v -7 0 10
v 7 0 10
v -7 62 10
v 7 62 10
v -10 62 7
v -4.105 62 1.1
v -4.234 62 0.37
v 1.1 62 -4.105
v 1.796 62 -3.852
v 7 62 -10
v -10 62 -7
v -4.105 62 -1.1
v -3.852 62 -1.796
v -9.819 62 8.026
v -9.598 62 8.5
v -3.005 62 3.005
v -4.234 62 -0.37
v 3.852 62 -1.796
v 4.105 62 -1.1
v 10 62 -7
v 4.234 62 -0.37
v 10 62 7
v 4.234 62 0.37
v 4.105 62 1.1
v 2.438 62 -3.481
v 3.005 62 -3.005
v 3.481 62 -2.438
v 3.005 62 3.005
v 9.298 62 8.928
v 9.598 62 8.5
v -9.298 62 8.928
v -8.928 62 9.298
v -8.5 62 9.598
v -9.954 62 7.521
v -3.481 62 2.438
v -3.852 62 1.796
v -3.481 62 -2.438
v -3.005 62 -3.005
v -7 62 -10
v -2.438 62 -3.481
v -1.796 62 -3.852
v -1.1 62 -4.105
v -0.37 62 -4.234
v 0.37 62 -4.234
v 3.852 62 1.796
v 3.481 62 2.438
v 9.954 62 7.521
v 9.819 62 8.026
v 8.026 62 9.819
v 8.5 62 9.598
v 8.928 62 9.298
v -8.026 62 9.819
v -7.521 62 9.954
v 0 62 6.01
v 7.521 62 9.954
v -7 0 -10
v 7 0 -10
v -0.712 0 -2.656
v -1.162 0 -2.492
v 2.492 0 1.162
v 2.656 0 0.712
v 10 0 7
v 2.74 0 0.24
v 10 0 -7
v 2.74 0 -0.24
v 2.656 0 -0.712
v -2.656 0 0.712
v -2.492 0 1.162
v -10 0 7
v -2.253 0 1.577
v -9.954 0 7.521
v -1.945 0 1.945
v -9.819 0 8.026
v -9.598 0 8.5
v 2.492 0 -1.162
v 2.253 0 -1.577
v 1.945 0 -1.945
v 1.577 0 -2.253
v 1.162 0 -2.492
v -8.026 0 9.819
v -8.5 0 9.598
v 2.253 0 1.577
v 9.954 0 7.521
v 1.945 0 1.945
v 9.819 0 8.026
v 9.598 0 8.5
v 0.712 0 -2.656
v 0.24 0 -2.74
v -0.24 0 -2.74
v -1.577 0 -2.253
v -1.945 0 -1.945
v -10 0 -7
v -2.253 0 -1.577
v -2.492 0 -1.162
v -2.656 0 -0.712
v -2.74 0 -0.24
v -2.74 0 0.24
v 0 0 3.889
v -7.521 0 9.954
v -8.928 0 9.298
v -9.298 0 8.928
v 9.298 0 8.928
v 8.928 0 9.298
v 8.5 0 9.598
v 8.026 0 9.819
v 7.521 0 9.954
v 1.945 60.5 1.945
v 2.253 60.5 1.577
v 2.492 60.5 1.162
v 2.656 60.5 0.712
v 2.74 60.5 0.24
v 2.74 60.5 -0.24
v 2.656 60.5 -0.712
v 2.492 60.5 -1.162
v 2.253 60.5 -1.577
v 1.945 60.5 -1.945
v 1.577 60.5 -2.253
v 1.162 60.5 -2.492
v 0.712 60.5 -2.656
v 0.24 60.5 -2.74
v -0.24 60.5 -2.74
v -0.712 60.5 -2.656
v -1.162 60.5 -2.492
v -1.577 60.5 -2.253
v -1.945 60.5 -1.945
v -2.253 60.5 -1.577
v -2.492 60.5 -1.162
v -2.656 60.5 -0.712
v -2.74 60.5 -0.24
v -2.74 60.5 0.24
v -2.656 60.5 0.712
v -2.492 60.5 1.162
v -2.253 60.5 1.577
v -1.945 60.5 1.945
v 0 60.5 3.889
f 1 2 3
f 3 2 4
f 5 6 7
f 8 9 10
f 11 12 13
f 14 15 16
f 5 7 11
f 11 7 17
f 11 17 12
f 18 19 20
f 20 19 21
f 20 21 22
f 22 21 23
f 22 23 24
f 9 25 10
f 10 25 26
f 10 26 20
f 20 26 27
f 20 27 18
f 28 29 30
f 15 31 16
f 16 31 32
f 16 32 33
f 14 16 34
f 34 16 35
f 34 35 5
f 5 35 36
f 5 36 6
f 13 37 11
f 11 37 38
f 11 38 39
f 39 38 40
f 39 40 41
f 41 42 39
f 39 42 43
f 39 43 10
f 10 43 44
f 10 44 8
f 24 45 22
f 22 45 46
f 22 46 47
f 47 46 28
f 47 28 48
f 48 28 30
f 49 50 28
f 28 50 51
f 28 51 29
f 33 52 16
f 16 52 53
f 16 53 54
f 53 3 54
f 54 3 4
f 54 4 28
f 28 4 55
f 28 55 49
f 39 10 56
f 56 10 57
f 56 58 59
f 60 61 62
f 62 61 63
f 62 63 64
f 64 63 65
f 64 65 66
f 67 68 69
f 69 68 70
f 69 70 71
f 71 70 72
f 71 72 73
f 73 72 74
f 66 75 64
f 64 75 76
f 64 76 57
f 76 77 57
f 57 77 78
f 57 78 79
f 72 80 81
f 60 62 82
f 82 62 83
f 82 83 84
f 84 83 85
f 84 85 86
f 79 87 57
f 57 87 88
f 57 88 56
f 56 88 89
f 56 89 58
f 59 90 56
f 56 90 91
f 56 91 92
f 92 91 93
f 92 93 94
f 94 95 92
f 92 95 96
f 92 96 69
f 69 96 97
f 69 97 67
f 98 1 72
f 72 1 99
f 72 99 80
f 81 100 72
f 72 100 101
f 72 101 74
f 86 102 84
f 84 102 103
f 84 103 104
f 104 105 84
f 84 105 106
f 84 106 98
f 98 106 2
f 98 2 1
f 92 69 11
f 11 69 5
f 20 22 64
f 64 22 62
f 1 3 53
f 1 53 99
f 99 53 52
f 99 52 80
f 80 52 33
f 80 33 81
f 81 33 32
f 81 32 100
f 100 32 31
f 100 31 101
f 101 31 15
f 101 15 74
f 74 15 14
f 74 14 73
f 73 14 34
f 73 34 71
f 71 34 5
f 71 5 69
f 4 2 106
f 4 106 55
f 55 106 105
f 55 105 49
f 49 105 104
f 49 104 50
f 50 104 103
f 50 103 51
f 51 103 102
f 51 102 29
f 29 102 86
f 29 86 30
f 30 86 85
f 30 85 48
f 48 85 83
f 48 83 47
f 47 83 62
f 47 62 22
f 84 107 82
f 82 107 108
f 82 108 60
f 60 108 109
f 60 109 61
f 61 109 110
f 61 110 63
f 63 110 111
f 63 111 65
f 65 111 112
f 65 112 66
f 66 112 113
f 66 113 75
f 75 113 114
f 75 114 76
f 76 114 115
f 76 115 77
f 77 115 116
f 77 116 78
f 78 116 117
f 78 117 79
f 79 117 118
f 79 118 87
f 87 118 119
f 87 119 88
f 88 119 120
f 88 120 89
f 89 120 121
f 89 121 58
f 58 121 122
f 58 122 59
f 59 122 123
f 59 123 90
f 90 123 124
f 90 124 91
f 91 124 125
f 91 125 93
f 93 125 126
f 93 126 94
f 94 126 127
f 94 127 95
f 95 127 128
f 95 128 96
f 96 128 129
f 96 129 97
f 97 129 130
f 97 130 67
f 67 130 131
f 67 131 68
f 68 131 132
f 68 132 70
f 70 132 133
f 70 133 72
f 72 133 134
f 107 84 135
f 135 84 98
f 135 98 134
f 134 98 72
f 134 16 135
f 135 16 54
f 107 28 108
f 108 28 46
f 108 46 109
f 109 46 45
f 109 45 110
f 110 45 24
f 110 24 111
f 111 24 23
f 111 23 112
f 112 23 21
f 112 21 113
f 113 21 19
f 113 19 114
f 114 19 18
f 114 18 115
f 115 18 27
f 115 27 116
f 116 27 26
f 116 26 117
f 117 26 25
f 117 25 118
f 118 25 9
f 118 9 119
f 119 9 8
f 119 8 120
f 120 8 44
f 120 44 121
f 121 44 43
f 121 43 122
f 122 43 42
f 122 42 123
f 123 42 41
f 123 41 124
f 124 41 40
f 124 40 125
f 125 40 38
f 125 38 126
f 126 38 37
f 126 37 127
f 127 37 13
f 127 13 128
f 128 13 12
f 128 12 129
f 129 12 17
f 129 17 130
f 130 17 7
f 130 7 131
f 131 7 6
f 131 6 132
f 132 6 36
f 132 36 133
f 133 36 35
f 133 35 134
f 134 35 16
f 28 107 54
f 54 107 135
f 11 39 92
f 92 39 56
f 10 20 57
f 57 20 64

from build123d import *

# Parameters (mm, degrees)
BOSS_EXTRUDE1_DEPTH      = 10
BOSS_EXTRUDE1_DEPTH_BACK = 10
SKETCH3_W                = 20
SKETCH3_H                = 62
FILLET1_R                = 3
CUT_EXTRUDE1_DEPTH       = 64.592452382
CHAMFER1_SIZE            = 1.5
CHAMFER2_SIZE            = 3


with BuildPart() as part:
    # Sketch3 → Boss-Extrude1 (new, two sides: drawn at the far end of the back side and taken through both)
    with BuildSketch(Plane(origin=(0, 0, 0), x_dir=(0, 0, -1), z_dir=(1, 0, 0)).offset(-BOSS_EXTRUDE1_DEPTH_BACK)):
        with Locations((0, 31)):
            Rectangle(SKETCH3_W, SKETCH3_H)
    extrude(amount=BOSS_EXTRUDE1_DEPTH + BOSS_EXTRUDE1_DEPTH_BACK)

    # Fillet1
    fillet1_edges = [part.edges().sort_by_distance(p)[0] for p in [
        (-10, 31, 10),
        (10, 31, 10),
    ]]
    fillet(fillet1_edges, radius=FILLET1_R)

    # Sketch4 → Cut-Extrude1 (cut, through all)
    with BuildSketch(Plane(origin=(0, 62, 0), x_dir=(1, 0, 0), z_dir=(0, 1, 0))):
        with BuildLine():
            Line((0, -3.889087297), (1.944543648, -1.944543648))
            ThreePointArc((1.944543648, -1.944543648), (0, 2.75), (-1.944543648, -1.944543648))
            Line((-1.944543648, -1.944543648), (0, -3.889087297))
        make_face()
    extrude(amount=-CUT_EXTRUDE1_DEPTH, mode=Mode.SUBTRACT)

    # Chamfer1
    chamfer1_edges = [part.edges().sort_by_distance(p)[0] for p in [
        (0.972271824, 62, 2.916815472),
        (-0.972271824, 62, 2.916815472),
        (0, 62, -2.75),
    ]]
    chamfer(chamfer1_edges, length=CHAMFER1_SIZE)

    # Chamfer2
    chamfer2_edges = [part.edges().sort_by_distance(p)[0] for p in [
        (-10, 31, -10),
        (10, 31, -10),
    ]]
    chamfer(chamfer2_edges, length=CHAMFER2_SIZE)


solid = part.part
